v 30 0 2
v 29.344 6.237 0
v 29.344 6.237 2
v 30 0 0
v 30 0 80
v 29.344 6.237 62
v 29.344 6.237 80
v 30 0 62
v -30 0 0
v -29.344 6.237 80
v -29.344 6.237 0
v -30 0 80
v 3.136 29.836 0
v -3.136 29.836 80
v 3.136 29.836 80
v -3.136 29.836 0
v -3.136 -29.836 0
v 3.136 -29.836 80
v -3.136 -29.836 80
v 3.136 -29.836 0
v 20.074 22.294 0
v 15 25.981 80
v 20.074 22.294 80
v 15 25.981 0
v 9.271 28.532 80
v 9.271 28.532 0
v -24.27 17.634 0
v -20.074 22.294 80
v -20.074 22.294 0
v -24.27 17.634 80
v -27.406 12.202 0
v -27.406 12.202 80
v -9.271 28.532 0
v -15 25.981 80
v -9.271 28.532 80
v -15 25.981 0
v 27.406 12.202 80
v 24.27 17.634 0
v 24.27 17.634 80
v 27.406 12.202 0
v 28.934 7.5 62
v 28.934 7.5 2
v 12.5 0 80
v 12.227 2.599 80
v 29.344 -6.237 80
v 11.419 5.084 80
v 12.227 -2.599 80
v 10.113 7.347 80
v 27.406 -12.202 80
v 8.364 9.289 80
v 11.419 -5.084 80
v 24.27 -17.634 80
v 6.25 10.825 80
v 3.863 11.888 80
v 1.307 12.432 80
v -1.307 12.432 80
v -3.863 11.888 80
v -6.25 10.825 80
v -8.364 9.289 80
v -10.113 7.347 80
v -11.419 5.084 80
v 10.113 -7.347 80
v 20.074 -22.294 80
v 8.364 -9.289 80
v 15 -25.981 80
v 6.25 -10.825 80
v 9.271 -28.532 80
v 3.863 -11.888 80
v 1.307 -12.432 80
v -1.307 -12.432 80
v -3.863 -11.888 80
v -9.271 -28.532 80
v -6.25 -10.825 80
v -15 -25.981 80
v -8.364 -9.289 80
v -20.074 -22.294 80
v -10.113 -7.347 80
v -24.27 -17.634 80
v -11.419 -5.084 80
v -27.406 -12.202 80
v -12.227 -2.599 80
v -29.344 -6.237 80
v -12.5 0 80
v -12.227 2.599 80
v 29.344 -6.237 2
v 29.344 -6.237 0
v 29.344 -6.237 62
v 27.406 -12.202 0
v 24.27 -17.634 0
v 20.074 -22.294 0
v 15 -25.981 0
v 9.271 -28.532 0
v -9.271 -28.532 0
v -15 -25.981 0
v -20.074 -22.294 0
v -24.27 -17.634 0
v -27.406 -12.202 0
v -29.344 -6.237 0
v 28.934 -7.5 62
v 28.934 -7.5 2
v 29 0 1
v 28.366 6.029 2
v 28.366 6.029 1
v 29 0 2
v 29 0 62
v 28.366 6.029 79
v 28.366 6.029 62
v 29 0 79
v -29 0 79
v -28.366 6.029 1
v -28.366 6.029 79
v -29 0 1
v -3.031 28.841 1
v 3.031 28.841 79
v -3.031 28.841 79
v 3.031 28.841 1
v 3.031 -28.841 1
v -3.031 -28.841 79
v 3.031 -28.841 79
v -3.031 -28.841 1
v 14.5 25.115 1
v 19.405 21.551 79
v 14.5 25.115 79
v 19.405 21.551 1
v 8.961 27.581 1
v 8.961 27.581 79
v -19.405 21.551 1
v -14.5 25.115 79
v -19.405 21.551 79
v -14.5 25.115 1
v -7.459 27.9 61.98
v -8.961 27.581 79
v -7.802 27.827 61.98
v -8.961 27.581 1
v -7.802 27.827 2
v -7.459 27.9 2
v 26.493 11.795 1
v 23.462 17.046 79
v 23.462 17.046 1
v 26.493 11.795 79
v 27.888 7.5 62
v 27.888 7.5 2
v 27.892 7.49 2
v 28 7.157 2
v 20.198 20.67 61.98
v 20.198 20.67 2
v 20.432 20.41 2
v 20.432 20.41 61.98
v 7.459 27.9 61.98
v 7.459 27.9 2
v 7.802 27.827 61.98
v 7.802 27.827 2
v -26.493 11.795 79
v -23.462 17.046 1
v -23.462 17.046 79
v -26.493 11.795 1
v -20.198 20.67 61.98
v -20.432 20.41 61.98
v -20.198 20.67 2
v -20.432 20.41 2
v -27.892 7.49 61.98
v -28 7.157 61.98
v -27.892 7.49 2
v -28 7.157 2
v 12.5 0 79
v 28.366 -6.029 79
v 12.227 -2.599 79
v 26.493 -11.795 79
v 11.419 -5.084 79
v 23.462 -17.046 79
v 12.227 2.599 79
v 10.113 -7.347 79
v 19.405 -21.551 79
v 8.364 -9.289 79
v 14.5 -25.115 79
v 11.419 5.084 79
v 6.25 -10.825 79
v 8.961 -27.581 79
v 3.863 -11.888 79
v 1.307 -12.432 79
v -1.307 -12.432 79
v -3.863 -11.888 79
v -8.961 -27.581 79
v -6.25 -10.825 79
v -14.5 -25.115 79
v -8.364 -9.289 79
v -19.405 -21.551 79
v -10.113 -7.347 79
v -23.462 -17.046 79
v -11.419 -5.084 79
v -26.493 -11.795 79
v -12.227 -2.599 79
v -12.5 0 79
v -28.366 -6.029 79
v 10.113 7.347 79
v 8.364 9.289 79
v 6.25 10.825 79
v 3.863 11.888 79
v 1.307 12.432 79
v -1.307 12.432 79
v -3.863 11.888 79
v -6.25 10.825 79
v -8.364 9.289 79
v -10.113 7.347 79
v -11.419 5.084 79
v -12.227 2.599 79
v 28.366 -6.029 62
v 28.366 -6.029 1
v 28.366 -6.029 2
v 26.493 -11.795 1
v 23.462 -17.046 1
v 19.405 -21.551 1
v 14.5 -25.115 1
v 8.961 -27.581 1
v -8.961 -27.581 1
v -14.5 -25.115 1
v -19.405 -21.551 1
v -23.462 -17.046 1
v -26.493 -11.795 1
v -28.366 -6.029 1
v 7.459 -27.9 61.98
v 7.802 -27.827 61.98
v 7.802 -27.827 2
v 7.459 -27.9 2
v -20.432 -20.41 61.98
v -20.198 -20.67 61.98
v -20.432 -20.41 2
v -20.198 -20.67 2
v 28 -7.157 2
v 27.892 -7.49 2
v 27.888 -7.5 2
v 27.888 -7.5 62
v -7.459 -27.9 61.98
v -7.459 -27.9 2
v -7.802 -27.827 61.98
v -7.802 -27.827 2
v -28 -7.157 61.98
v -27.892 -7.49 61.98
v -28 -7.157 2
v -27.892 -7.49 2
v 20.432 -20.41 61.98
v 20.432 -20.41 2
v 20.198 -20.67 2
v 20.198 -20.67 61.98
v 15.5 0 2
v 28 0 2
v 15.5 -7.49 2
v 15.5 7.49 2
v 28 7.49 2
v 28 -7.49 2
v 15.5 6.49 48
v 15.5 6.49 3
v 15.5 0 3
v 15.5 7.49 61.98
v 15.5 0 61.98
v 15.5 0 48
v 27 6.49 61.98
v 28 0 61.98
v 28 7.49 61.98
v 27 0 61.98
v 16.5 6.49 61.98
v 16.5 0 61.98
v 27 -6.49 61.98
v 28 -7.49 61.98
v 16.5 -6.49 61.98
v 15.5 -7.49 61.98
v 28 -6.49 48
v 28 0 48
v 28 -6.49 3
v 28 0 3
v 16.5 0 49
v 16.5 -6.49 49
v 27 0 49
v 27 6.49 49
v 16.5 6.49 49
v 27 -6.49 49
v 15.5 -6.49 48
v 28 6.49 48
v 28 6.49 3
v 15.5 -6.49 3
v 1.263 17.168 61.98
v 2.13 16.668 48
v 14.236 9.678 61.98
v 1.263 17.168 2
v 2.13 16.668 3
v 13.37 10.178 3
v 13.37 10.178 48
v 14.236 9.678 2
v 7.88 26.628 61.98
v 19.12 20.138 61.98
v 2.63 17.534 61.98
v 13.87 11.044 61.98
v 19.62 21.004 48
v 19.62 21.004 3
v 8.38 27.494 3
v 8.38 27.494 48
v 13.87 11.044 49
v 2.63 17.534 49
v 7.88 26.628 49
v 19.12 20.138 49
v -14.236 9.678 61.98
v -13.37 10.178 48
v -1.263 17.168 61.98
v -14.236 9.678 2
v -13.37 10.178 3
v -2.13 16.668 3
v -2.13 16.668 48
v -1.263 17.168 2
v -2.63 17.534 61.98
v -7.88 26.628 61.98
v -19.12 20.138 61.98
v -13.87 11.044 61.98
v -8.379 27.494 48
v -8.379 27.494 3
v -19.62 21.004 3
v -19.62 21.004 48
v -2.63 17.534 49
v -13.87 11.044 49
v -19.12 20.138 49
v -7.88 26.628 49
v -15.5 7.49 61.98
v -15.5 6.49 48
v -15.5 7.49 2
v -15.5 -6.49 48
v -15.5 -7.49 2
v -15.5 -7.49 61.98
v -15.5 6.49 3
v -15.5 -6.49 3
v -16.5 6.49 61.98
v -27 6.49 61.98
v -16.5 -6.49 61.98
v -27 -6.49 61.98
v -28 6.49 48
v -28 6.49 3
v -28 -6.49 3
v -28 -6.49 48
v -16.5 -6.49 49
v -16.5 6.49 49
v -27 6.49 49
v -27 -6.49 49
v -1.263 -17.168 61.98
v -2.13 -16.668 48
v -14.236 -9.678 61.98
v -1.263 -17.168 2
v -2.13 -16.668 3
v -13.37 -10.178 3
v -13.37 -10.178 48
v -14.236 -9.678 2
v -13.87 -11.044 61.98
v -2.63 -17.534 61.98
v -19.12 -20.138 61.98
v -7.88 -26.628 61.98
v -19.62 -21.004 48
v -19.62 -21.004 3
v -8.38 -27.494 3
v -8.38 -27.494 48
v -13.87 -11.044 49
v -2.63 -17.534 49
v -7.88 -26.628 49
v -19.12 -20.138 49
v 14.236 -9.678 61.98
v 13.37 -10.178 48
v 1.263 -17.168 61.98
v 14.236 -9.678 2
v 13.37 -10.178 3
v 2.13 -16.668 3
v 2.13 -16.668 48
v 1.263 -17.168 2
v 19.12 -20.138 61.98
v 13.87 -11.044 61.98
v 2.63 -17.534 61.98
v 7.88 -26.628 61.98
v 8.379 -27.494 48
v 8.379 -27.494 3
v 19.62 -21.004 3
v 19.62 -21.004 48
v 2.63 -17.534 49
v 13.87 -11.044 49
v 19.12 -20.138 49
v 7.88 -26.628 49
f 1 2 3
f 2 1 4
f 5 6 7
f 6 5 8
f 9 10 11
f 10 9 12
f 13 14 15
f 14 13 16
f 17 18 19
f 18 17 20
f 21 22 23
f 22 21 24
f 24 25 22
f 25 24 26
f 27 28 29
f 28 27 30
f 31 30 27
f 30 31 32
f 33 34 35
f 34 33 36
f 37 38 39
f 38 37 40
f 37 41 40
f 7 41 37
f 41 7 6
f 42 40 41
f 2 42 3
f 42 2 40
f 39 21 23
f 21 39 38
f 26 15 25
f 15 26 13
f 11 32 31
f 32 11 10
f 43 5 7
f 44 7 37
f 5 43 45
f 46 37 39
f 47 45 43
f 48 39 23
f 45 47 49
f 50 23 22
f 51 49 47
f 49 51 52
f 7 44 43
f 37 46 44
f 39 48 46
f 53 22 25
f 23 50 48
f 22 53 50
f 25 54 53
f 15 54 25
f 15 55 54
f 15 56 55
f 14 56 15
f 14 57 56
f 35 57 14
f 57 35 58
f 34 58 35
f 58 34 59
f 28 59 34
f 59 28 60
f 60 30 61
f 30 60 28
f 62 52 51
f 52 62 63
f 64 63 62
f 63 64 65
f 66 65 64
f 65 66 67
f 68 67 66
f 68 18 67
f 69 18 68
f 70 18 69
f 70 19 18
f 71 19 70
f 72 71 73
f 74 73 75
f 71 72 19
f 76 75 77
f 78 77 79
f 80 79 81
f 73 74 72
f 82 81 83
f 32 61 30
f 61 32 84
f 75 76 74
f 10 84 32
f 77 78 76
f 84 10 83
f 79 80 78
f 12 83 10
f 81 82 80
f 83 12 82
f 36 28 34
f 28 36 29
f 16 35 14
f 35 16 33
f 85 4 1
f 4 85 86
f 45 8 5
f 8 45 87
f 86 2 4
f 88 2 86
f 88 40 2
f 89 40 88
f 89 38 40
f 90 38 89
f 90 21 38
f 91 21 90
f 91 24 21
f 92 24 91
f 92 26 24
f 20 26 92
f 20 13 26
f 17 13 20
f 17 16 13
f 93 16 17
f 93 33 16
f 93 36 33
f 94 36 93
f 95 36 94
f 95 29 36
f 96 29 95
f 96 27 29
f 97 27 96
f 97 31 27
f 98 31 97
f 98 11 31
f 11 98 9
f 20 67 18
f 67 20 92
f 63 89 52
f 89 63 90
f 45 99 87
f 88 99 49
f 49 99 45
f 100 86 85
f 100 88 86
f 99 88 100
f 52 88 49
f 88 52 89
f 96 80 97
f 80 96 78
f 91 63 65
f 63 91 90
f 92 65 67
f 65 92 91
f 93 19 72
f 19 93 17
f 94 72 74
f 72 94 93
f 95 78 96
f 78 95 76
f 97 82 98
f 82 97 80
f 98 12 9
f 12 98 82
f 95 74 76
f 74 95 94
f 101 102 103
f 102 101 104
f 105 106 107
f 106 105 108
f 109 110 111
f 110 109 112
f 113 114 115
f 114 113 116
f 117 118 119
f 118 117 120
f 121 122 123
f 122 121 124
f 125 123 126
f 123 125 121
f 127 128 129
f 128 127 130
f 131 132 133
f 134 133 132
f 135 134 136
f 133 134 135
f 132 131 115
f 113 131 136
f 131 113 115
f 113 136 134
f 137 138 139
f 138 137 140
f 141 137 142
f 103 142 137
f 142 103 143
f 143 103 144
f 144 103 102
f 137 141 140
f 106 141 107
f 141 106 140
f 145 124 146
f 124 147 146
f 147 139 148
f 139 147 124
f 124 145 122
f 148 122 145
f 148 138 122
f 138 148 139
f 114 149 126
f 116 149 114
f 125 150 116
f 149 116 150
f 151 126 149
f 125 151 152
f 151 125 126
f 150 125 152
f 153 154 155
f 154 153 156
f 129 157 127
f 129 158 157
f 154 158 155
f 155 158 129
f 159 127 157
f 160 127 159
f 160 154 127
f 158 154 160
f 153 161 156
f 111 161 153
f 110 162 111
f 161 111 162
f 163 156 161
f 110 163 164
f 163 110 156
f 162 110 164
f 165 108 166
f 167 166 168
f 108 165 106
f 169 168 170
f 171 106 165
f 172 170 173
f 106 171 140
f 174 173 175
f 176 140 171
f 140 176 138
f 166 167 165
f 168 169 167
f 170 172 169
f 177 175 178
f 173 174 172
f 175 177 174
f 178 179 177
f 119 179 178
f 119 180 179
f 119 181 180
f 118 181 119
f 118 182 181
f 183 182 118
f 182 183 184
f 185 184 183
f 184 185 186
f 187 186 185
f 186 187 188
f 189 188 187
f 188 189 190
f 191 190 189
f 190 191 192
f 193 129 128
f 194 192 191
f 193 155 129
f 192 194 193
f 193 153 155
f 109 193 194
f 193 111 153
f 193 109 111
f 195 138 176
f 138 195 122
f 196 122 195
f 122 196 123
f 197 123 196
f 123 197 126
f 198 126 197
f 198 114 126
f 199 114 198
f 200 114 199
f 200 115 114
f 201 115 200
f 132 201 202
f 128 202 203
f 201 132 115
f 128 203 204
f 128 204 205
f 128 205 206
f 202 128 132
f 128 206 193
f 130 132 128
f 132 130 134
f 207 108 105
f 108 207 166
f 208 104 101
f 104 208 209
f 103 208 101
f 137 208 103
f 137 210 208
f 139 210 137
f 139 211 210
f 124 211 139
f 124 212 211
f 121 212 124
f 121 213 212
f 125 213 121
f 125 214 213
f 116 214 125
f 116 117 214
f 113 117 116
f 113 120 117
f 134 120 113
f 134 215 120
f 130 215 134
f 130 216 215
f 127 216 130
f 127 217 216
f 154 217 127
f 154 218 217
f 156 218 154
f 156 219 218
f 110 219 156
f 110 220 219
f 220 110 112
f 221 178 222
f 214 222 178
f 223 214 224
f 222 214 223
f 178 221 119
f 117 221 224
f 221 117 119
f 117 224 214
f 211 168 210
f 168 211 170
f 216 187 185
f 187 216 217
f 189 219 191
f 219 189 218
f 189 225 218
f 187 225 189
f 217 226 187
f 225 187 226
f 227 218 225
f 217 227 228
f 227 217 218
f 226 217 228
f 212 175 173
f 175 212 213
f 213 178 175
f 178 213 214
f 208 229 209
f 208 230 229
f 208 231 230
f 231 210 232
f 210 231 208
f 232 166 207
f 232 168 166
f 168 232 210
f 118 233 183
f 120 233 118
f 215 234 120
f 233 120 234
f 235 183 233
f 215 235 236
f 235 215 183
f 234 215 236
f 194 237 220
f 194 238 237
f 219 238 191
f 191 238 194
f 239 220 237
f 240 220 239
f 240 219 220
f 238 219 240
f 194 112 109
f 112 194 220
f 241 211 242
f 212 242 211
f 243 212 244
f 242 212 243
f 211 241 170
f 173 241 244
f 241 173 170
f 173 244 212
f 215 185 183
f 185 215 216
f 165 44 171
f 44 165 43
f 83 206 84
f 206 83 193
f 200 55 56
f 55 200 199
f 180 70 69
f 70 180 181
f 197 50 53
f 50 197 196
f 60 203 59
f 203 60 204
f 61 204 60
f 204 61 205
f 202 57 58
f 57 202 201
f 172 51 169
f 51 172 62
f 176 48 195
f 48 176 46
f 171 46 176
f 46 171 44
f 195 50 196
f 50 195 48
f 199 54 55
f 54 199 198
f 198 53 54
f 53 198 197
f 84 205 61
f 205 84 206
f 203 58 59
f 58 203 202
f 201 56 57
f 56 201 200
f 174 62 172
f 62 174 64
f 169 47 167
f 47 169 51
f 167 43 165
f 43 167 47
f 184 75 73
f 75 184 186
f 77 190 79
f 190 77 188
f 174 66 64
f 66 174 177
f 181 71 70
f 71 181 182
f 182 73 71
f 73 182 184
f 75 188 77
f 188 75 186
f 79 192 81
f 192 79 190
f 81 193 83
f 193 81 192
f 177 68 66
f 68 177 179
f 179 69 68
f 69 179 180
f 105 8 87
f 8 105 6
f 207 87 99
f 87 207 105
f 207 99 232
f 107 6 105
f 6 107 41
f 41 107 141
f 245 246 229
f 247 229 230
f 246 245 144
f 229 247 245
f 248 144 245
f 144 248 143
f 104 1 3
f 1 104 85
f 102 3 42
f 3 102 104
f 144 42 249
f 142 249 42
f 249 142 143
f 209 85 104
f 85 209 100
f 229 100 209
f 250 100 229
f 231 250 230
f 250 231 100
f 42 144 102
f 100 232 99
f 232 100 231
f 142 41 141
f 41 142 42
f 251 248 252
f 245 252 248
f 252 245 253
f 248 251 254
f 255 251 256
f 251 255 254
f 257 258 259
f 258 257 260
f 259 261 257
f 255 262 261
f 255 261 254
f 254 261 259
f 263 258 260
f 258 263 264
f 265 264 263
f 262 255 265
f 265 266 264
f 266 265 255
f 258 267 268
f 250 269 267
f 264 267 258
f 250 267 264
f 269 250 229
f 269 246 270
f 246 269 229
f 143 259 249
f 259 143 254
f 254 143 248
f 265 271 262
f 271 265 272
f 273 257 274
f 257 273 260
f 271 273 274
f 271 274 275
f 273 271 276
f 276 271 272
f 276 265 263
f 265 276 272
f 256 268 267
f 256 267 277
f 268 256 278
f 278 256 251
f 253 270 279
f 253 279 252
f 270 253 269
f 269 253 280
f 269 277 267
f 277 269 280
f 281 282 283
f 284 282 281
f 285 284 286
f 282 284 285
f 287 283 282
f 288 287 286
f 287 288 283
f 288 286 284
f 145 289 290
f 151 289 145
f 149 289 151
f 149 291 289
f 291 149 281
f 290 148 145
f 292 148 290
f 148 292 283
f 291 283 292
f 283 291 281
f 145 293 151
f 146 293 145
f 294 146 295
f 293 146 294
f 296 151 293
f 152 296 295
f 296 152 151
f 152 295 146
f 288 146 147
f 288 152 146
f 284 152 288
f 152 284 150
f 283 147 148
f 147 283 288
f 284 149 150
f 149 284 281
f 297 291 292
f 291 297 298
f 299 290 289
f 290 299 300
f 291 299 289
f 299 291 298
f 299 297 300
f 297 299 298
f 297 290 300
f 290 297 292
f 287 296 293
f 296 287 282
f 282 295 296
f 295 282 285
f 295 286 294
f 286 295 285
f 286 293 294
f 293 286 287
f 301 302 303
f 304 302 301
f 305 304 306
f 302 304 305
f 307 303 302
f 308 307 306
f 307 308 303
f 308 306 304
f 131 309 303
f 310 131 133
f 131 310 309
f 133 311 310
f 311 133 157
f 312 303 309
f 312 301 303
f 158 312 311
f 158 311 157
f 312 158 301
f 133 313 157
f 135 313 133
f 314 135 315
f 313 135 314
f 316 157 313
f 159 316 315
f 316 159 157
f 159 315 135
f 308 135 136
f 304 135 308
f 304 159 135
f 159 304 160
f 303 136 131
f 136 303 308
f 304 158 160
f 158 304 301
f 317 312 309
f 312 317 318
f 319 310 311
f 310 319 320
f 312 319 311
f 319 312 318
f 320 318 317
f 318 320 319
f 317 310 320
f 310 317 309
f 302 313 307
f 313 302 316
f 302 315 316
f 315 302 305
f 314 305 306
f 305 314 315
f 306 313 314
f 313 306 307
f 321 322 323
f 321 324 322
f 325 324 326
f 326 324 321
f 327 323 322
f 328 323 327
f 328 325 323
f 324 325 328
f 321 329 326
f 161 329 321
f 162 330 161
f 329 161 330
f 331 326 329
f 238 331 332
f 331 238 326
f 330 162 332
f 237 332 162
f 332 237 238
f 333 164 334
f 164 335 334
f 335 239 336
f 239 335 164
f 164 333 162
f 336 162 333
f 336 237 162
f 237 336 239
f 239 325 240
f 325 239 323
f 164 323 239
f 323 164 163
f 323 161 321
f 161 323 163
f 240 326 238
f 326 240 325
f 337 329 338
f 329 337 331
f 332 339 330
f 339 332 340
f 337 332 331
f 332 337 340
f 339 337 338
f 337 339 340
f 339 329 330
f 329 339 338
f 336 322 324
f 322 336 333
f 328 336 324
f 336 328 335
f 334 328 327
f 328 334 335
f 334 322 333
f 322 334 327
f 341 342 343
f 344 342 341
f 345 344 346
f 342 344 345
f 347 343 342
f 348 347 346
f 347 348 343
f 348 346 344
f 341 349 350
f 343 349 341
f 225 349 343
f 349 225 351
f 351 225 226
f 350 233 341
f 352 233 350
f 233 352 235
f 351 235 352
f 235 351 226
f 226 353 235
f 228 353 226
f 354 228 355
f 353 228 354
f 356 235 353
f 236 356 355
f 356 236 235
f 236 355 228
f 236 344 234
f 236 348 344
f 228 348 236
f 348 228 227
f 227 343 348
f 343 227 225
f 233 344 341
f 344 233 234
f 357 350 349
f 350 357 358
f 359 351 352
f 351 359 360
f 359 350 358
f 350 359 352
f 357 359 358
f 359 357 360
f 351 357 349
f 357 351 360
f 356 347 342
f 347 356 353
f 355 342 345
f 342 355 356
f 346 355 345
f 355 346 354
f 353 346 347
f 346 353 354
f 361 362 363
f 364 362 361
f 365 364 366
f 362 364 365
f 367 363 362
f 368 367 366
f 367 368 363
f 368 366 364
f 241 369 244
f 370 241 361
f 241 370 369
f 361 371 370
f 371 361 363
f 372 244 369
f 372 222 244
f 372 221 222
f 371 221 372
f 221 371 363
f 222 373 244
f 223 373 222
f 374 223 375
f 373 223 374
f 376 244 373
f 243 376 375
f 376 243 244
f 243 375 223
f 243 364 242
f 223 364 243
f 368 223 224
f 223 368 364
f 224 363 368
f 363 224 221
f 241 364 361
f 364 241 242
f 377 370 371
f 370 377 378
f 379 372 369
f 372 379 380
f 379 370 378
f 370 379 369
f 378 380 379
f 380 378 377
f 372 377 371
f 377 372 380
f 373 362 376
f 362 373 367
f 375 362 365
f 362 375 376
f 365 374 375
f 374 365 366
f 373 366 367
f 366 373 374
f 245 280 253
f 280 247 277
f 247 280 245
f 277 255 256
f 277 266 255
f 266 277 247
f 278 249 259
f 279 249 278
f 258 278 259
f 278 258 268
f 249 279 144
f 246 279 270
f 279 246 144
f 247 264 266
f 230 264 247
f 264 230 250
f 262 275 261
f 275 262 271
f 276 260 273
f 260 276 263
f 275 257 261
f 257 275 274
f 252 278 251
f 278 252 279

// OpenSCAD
// 模型中单位统一采取厘米
// 每单位长度表示一厘米

EPS = 0.01;

BodyHeight = 80;  // 产品高度
BodyRadius = 30;  // 产品外径
ShellThickness = 1;  // 板材厚度
UmbrellaRadius = 12.5;  // 伞孔半径

DrawerWindowHeight = 60;  // 抽屉窗口高度
DrawerWindowWidth = 15;  // 抽屉窗口宽度

// 抽屉长宽高
DrawerLenth = 12.5;
DrawerWidth =
  DrawerWindowWidth-EPS*2;
DrawerHeight =
  DrawerWindowHeight-EPS*2;

// 伞格长宽高
UmbrellaBoxLenth =
  DrawerLenth;
UmbrellaBoxWidth =
  DrawerWidth - ShellThickness*2;
UmbrellaBoxHeight = 45;

// 抽屉数量
DrawerNumber = 6;


// 别名
// Do not edit these names
BH = BodyHeight;
BR = BodyRadius;
ST = ShellThickness;
UR = UmbrellaRadius;

DWH = DrawerWindowHeight;
DWW = DrawerWindowWidth;

DL = DrawerLenth;
DW = DrawerWidth;
DH = DrawerHeight;

UBL = UmbrellaBoxLenth;
UBW = UmbrellaBoxWidth;
UBH = UmbrellaBoxHeight;

DN = DrawerNumber;


// 产品外壳
module Body() {
  difference() {
    cylinder(h=BH, r=BR);
  
    // 中间空心
    translate([0, 0, ST]) {
      cylinder(
        h=BH - 2*ST,
        r=BR-ST
      );
    }
  
    // 伞孔
    translate([0, 0, BH-ST-EPS]) {
      cylinder(
        h=ST+EPS*2,
        r=UR
      );
    }
  
    // 抽屉窗口
    translate([BR, 0, ST*2+DWH/2]) {
      cube(
        [BR, DWW, DWH],
        center=true
      );
    }
  }
}


// 抽屉模型
module Drawer() {
  difference() {
    cube([
      DL,
      DW,
      DH
    ]);
    translate([
      ST, ST, UBH+ST*2
    ]) {
      cube([
        DL-ST*2,
        DW-ST*2,
        DH-UBH-ST*2+EPS
      ]);
    }
    translate([
      -EPS/2, ST, ST
    ]) {
      cube([
        UBL+EPS,
        UBW,
        UBH
      ]);
    }
  }
}


// Start here
DrawPostionOffset = [
  BR-DL-ST*2,
  -DW/2,
  ST*2,
];

DPO = DrawPostionOffset;


Body();

color("blue") {
  translate(DPO) {
    Drawer();
  }
  for (i = [1:DN]) {
    rotate([0, 0, i*(360/DN)]) {
      translate(DPO) {
        Drawer();
      }
    }
  }
}
